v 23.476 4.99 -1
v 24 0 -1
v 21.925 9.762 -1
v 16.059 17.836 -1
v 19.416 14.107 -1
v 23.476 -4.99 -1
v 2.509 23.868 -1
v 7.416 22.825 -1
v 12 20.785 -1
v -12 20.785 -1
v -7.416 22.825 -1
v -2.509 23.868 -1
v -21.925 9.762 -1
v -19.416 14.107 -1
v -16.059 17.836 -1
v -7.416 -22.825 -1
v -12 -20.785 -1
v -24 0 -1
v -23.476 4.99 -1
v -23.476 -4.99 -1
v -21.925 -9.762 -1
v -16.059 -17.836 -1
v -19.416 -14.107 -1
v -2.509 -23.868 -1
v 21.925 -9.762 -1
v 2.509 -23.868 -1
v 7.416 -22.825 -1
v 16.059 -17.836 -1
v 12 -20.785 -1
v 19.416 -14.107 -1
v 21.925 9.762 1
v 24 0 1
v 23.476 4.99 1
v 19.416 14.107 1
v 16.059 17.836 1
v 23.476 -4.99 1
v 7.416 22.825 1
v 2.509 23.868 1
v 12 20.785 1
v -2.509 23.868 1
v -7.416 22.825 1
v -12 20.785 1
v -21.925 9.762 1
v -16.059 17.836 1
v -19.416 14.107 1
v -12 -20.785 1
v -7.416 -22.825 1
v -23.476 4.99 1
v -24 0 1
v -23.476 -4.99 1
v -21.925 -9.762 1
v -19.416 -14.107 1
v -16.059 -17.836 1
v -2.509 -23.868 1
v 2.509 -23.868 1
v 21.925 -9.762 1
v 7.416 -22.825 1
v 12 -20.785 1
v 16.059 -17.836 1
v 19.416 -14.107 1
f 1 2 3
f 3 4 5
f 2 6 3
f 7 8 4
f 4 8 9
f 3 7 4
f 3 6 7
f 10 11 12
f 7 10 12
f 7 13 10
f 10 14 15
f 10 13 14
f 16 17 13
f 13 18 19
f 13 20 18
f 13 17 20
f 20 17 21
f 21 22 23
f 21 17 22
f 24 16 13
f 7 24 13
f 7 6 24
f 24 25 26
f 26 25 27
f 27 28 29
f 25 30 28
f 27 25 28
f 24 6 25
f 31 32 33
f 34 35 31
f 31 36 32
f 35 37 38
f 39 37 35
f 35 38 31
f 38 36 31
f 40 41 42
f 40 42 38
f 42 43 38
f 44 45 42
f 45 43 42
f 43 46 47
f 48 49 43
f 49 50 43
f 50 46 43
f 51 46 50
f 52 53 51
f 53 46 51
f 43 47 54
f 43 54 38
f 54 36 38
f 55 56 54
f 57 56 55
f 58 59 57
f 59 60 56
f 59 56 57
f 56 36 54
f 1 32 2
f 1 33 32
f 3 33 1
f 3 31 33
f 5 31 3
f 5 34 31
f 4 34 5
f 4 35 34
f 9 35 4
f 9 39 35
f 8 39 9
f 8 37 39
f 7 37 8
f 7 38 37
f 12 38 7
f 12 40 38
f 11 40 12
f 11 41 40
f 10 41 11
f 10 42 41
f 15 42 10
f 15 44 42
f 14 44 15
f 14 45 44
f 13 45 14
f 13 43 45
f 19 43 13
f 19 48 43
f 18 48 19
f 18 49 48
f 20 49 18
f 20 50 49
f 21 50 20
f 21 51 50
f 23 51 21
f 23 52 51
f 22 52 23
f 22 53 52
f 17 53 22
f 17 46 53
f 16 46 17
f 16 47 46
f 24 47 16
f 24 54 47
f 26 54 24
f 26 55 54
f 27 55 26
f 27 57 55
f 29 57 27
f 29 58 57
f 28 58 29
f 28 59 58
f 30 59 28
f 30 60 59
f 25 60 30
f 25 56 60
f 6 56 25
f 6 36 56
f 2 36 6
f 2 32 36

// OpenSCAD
linear_extrude(height=2, center=true, convexity=10, twist=0) {
  circle(r=48/2);
}
